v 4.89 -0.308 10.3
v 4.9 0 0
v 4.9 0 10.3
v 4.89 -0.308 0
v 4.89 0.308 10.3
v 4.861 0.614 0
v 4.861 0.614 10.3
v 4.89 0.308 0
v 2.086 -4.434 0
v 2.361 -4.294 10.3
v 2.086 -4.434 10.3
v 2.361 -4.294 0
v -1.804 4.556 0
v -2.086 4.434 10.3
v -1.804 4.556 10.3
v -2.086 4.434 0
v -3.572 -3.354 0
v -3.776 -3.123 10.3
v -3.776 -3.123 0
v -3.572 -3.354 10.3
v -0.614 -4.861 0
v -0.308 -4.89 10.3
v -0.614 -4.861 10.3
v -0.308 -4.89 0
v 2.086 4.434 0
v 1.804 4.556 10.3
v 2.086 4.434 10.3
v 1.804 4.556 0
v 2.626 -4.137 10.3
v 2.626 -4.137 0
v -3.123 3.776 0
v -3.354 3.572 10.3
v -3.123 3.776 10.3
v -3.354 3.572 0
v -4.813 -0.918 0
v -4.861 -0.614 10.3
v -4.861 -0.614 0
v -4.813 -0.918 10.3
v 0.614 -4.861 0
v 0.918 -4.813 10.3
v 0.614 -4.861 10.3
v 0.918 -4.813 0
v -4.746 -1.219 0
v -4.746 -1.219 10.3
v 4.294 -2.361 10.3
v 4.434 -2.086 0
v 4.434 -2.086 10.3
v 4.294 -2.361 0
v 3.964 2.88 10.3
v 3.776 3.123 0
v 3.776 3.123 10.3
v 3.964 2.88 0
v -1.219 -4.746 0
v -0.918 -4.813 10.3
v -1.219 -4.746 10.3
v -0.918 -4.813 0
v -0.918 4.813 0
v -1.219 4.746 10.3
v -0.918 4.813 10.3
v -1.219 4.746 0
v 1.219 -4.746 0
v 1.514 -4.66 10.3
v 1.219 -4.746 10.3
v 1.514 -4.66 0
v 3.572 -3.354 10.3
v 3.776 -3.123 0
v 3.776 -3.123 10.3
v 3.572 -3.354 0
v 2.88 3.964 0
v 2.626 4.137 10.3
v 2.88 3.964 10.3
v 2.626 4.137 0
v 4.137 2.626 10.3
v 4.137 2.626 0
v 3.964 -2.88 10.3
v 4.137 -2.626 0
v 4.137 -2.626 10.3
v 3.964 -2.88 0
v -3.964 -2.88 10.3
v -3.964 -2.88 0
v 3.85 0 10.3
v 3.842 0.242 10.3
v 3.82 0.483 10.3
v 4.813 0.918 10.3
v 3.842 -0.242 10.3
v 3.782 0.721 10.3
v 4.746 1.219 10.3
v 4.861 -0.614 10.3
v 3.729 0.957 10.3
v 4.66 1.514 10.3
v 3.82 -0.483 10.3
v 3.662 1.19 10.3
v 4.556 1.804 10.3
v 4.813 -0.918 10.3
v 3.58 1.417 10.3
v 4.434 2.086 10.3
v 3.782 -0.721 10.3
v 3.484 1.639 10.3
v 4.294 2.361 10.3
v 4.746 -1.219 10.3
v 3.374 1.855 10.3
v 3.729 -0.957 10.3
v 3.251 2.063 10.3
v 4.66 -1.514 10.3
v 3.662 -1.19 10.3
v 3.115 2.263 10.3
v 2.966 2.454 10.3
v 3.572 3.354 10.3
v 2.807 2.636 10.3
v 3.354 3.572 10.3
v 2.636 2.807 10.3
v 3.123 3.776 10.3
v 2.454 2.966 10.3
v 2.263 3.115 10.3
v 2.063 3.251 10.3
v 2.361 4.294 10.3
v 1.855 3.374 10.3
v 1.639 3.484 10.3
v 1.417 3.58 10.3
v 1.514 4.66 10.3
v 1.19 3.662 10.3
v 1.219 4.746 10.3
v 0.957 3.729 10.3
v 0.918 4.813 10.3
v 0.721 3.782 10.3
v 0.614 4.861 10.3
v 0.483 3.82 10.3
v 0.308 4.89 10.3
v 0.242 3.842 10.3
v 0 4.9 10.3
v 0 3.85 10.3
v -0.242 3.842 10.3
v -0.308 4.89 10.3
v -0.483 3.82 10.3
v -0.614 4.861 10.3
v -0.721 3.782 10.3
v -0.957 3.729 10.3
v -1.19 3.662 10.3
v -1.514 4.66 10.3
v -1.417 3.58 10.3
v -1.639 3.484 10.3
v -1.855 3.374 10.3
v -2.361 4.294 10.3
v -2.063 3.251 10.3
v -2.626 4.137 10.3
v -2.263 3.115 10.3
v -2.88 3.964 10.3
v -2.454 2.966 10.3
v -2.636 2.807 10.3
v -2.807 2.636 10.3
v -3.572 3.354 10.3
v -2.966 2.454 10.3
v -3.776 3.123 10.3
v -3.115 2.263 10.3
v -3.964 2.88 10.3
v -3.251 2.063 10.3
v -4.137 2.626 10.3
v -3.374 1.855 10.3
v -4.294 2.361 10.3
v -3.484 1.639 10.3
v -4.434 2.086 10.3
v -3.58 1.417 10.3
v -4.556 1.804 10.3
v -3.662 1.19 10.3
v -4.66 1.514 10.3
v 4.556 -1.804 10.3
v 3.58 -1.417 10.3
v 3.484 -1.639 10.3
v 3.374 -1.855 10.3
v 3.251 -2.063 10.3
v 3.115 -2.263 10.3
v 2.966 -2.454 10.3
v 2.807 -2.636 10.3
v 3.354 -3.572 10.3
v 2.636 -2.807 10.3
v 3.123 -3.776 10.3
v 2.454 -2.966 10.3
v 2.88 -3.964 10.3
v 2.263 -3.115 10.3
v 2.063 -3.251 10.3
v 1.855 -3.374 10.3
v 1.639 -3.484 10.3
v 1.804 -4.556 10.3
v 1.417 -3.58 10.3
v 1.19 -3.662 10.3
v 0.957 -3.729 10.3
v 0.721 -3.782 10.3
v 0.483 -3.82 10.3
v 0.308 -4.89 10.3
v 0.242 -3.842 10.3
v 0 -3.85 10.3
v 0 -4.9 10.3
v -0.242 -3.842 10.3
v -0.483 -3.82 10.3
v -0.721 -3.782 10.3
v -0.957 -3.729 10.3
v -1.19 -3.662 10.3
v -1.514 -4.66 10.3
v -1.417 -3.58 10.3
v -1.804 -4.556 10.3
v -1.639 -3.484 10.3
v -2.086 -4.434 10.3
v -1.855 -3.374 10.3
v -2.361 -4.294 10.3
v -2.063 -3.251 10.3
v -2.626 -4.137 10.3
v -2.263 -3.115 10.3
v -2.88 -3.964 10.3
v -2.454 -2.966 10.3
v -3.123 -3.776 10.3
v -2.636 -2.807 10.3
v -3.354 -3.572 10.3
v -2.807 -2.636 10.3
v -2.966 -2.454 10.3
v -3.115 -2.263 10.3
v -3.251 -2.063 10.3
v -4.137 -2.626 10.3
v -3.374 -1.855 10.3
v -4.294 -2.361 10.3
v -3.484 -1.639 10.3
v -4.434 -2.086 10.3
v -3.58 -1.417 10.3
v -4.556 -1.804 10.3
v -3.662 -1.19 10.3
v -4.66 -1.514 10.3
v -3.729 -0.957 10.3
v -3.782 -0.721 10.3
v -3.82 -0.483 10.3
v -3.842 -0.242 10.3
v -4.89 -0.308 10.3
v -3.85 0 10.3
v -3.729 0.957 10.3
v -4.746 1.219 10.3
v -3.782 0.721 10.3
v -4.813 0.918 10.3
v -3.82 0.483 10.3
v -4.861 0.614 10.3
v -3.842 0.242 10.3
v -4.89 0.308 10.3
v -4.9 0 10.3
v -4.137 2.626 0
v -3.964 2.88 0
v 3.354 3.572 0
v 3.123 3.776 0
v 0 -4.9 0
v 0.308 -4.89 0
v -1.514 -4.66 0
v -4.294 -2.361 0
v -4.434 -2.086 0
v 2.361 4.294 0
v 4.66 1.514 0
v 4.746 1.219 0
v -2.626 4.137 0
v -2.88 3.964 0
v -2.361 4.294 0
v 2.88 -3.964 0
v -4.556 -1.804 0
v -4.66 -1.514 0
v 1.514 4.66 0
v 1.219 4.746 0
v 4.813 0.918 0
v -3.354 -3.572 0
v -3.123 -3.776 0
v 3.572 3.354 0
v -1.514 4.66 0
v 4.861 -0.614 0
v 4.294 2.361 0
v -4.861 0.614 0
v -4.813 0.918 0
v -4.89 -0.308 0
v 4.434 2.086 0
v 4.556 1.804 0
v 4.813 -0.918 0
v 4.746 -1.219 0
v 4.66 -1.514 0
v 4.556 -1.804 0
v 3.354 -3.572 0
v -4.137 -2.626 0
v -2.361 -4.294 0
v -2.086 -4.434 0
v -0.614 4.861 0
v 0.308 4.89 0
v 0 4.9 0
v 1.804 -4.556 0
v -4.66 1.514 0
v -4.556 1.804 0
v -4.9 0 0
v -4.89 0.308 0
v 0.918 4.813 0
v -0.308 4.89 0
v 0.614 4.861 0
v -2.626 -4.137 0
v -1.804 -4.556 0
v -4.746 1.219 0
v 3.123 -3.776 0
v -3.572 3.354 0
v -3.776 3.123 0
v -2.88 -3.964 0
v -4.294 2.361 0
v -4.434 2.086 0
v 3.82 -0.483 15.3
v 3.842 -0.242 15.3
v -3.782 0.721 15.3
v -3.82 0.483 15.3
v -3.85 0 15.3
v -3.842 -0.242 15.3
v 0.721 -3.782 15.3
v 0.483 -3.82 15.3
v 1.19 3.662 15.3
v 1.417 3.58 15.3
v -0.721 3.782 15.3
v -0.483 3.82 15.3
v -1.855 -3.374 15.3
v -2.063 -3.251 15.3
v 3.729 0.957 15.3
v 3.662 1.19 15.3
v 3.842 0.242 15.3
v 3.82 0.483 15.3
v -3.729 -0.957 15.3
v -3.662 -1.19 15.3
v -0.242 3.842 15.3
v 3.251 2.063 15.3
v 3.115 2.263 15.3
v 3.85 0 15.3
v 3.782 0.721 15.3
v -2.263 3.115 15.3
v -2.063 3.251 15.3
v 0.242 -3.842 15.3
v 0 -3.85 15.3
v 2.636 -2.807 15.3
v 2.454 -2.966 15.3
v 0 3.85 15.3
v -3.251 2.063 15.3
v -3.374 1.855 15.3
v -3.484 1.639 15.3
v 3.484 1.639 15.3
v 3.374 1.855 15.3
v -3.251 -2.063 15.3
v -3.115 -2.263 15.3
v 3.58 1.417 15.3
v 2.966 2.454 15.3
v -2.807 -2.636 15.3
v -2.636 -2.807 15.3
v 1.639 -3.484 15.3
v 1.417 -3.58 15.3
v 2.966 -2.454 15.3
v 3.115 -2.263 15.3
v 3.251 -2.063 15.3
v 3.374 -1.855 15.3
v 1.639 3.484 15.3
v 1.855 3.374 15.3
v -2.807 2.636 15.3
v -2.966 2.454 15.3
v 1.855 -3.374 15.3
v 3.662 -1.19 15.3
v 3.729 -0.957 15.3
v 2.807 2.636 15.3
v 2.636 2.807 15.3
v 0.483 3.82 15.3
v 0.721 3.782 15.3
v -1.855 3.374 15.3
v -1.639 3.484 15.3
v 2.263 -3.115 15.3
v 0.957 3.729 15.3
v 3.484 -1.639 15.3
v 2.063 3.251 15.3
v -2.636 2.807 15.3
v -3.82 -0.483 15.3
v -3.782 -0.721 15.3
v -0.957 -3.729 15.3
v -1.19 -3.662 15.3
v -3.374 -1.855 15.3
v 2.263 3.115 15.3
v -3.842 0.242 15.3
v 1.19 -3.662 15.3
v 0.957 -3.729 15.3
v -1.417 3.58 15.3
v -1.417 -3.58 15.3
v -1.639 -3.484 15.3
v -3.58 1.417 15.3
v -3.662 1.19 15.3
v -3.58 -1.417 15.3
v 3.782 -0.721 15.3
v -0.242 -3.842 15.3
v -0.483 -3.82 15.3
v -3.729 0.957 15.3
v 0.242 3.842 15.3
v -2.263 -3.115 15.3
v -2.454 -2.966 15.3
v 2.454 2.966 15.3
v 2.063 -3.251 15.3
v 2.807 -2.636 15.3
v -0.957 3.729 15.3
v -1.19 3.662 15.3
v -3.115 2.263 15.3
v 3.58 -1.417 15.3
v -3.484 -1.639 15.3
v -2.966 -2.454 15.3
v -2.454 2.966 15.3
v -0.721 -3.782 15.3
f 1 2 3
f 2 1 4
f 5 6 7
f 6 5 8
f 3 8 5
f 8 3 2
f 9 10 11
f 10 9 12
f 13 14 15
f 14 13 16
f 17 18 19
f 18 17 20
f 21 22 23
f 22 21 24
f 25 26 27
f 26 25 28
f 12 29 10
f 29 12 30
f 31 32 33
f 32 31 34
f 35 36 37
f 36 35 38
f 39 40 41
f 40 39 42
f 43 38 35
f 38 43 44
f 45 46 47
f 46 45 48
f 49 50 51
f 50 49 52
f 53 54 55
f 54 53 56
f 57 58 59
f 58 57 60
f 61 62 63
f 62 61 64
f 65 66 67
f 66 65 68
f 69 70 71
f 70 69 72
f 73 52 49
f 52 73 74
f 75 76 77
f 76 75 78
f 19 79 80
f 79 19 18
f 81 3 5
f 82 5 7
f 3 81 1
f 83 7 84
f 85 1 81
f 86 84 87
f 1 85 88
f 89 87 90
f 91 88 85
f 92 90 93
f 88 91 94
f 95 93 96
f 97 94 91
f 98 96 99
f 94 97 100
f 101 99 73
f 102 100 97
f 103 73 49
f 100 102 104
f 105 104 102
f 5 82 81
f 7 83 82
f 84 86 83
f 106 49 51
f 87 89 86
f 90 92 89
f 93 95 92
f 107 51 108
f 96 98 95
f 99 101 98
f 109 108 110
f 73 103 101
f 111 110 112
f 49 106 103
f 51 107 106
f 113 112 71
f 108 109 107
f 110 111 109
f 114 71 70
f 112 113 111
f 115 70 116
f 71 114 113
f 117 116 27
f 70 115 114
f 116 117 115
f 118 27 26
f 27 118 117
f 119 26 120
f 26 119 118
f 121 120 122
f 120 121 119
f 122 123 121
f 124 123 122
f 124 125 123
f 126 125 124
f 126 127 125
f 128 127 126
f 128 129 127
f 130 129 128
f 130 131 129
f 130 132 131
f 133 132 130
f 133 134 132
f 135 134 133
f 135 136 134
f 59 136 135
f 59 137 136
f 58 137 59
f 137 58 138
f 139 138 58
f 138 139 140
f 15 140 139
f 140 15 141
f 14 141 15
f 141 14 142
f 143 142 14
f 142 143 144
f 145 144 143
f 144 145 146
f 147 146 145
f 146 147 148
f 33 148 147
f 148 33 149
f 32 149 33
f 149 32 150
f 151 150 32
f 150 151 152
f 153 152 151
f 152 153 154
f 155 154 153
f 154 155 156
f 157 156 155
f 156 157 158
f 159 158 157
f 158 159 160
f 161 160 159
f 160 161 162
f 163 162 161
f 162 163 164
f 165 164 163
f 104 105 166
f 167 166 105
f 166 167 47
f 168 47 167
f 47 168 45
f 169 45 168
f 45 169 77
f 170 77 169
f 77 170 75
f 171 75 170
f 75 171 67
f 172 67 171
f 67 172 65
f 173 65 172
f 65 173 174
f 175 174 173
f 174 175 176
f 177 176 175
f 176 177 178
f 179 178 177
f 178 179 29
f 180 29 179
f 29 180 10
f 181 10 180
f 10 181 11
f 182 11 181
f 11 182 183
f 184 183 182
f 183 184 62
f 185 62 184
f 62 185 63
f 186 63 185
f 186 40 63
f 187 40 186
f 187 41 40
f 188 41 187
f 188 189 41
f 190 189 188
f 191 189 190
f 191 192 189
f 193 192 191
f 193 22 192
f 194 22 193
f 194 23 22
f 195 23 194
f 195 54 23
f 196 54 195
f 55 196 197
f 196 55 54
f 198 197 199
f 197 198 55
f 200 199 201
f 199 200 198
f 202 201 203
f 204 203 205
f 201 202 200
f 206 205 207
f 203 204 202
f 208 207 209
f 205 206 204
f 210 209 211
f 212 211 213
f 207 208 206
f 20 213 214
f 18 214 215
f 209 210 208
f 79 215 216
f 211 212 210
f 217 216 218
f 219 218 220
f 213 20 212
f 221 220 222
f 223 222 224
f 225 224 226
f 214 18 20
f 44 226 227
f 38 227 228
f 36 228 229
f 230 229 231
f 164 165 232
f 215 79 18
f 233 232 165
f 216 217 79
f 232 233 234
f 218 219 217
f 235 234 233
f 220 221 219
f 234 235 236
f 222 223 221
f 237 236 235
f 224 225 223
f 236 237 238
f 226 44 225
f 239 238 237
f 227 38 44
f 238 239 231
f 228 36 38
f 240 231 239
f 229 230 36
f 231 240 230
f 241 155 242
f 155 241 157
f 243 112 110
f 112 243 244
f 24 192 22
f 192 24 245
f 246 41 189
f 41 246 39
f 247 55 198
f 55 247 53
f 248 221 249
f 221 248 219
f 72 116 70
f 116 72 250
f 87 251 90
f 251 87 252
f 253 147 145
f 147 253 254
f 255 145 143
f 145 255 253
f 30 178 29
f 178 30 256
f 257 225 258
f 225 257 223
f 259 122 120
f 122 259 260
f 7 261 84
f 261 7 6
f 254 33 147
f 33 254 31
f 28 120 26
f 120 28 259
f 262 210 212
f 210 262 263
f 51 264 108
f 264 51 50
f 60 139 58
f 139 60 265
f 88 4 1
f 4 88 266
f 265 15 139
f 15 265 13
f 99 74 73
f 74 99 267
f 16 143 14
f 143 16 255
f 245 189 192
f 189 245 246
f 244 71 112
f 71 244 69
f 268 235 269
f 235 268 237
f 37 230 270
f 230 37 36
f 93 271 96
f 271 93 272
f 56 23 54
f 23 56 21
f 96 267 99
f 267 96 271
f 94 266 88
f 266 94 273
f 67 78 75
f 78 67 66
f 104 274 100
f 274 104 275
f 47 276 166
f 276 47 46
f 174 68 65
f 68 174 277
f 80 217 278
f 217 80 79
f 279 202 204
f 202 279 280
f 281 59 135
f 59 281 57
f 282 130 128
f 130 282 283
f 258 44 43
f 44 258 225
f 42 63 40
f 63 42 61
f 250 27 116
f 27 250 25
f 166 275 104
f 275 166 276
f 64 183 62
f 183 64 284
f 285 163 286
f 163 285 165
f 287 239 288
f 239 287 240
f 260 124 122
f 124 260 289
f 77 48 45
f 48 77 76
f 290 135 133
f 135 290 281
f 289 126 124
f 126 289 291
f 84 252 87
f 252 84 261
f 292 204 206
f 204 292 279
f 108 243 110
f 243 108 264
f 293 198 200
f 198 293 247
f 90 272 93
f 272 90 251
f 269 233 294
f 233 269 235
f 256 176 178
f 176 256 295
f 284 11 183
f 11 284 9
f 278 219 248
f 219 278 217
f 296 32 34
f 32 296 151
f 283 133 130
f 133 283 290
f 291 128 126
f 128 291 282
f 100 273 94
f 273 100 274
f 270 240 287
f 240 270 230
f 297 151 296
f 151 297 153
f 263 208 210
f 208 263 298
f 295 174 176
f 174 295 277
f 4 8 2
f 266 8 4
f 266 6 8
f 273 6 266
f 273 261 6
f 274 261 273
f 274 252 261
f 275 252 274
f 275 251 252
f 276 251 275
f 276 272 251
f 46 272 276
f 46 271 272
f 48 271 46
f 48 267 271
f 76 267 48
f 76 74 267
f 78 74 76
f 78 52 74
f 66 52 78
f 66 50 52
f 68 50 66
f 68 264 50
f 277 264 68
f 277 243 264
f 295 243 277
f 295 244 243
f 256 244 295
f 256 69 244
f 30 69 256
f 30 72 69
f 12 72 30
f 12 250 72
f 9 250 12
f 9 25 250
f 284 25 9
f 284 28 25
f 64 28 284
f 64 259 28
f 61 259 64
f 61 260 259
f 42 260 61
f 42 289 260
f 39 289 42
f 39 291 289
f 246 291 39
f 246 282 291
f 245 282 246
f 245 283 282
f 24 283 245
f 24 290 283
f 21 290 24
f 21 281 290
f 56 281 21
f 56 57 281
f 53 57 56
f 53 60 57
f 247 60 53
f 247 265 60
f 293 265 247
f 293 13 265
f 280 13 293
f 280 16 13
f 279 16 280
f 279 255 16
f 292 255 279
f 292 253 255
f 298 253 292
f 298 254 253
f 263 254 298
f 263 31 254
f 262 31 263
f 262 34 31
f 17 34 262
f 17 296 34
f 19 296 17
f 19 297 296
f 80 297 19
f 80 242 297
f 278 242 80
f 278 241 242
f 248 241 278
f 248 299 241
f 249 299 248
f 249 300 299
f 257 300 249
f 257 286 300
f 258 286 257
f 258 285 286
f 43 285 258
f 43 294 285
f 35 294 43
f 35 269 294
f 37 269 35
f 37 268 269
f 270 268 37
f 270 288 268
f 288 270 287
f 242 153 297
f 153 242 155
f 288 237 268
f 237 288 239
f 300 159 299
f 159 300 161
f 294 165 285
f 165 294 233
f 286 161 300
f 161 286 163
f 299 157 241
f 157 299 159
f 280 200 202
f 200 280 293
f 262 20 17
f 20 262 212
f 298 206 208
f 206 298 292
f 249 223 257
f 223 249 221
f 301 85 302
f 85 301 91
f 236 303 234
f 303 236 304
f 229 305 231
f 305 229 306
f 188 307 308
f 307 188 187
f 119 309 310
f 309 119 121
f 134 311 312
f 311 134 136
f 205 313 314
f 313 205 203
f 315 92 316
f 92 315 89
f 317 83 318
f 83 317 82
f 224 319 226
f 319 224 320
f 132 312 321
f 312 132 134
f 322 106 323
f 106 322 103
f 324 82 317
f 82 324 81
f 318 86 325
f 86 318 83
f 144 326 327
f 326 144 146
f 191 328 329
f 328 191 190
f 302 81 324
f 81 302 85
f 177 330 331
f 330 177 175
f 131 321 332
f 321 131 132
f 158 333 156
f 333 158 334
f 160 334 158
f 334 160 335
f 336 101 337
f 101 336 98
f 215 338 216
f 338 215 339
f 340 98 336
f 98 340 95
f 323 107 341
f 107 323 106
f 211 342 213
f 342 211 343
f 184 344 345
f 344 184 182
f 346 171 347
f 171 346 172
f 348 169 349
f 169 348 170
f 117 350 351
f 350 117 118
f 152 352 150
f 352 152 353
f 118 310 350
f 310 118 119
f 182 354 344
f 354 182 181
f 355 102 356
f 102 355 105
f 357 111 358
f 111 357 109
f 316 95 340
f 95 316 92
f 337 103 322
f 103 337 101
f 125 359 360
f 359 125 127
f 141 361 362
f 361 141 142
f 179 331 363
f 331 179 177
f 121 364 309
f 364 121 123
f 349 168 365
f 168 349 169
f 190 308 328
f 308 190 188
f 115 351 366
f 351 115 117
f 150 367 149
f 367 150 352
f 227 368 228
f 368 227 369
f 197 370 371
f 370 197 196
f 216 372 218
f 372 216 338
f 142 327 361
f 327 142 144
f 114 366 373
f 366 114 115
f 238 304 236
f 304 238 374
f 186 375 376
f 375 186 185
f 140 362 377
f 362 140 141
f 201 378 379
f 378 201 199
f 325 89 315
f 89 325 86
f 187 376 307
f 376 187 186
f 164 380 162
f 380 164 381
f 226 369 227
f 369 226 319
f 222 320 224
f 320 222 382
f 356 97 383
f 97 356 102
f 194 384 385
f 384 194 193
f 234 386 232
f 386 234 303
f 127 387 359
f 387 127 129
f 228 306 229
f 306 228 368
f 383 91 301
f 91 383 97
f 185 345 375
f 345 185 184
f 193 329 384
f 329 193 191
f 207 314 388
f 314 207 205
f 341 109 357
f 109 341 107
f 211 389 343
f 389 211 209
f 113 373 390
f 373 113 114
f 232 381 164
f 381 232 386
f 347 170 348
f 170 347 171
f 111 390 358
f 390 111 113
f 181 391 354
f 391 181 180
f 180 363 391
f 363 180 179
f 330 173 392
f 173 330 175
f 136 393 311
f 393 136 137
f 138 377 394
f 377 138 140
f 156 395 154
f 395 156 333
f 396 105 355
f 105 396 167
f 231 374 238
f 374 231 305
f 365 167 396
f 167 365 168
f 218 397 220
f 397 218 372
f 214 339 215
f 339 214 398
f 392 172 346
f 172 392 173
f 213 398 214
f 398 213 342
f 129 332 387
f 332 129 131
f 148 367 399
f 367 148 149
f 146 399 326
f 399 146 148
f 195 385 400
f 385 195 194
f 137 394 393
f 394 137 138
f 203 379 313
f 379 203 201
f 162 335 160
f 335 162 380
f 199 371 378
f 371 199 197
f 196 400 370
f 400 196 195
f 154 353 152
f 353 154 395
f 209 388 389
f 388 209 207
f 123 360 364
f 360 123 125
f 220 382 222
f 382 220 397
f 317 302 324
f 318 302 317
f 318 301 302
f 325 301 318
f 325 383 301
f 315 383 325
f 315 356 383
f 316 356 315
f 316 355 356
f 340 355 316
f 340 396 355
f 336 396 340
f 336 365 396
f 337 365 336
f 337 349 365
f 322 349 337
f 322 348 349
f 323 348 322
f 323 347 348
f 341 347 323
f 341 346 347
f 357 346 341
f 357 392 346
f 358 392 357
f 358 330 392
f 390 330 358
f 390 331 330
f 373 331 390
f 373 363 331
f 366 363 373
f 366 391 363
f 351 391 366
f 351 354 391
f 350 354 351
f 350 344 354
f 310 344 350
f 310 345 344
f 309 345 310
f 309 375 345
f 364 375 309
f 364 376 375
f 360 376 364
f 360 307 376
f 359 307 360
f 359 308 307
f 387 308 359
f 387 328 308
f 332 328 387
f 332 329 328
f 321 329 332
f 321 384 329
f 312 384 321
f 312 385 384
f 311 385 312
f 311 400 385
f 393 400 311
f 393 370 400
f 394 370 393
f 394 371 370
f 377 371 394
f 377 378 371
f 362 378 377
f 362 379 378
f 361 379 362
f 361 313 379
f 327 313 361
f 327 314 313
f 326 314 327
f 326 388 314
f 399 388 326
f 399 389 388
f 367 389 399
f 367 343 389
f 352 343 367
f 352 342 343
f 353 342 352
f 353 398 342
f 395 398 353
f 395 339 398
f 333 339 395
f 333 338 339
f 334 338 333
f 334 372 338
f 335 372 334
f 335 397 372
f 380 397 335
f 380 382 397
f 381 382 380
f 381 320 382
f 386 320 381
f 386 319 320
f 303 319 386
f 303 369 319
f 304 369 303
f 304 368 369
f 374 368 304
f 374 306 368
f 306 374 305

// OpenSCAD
module ButtonBolts()
{
    cylinder(10.3,d=9.8, $fn=100);
    translate([0,0,10.3])
    cylinder(5,d=7.7, $fn=100);
}

ButtonBolts();
